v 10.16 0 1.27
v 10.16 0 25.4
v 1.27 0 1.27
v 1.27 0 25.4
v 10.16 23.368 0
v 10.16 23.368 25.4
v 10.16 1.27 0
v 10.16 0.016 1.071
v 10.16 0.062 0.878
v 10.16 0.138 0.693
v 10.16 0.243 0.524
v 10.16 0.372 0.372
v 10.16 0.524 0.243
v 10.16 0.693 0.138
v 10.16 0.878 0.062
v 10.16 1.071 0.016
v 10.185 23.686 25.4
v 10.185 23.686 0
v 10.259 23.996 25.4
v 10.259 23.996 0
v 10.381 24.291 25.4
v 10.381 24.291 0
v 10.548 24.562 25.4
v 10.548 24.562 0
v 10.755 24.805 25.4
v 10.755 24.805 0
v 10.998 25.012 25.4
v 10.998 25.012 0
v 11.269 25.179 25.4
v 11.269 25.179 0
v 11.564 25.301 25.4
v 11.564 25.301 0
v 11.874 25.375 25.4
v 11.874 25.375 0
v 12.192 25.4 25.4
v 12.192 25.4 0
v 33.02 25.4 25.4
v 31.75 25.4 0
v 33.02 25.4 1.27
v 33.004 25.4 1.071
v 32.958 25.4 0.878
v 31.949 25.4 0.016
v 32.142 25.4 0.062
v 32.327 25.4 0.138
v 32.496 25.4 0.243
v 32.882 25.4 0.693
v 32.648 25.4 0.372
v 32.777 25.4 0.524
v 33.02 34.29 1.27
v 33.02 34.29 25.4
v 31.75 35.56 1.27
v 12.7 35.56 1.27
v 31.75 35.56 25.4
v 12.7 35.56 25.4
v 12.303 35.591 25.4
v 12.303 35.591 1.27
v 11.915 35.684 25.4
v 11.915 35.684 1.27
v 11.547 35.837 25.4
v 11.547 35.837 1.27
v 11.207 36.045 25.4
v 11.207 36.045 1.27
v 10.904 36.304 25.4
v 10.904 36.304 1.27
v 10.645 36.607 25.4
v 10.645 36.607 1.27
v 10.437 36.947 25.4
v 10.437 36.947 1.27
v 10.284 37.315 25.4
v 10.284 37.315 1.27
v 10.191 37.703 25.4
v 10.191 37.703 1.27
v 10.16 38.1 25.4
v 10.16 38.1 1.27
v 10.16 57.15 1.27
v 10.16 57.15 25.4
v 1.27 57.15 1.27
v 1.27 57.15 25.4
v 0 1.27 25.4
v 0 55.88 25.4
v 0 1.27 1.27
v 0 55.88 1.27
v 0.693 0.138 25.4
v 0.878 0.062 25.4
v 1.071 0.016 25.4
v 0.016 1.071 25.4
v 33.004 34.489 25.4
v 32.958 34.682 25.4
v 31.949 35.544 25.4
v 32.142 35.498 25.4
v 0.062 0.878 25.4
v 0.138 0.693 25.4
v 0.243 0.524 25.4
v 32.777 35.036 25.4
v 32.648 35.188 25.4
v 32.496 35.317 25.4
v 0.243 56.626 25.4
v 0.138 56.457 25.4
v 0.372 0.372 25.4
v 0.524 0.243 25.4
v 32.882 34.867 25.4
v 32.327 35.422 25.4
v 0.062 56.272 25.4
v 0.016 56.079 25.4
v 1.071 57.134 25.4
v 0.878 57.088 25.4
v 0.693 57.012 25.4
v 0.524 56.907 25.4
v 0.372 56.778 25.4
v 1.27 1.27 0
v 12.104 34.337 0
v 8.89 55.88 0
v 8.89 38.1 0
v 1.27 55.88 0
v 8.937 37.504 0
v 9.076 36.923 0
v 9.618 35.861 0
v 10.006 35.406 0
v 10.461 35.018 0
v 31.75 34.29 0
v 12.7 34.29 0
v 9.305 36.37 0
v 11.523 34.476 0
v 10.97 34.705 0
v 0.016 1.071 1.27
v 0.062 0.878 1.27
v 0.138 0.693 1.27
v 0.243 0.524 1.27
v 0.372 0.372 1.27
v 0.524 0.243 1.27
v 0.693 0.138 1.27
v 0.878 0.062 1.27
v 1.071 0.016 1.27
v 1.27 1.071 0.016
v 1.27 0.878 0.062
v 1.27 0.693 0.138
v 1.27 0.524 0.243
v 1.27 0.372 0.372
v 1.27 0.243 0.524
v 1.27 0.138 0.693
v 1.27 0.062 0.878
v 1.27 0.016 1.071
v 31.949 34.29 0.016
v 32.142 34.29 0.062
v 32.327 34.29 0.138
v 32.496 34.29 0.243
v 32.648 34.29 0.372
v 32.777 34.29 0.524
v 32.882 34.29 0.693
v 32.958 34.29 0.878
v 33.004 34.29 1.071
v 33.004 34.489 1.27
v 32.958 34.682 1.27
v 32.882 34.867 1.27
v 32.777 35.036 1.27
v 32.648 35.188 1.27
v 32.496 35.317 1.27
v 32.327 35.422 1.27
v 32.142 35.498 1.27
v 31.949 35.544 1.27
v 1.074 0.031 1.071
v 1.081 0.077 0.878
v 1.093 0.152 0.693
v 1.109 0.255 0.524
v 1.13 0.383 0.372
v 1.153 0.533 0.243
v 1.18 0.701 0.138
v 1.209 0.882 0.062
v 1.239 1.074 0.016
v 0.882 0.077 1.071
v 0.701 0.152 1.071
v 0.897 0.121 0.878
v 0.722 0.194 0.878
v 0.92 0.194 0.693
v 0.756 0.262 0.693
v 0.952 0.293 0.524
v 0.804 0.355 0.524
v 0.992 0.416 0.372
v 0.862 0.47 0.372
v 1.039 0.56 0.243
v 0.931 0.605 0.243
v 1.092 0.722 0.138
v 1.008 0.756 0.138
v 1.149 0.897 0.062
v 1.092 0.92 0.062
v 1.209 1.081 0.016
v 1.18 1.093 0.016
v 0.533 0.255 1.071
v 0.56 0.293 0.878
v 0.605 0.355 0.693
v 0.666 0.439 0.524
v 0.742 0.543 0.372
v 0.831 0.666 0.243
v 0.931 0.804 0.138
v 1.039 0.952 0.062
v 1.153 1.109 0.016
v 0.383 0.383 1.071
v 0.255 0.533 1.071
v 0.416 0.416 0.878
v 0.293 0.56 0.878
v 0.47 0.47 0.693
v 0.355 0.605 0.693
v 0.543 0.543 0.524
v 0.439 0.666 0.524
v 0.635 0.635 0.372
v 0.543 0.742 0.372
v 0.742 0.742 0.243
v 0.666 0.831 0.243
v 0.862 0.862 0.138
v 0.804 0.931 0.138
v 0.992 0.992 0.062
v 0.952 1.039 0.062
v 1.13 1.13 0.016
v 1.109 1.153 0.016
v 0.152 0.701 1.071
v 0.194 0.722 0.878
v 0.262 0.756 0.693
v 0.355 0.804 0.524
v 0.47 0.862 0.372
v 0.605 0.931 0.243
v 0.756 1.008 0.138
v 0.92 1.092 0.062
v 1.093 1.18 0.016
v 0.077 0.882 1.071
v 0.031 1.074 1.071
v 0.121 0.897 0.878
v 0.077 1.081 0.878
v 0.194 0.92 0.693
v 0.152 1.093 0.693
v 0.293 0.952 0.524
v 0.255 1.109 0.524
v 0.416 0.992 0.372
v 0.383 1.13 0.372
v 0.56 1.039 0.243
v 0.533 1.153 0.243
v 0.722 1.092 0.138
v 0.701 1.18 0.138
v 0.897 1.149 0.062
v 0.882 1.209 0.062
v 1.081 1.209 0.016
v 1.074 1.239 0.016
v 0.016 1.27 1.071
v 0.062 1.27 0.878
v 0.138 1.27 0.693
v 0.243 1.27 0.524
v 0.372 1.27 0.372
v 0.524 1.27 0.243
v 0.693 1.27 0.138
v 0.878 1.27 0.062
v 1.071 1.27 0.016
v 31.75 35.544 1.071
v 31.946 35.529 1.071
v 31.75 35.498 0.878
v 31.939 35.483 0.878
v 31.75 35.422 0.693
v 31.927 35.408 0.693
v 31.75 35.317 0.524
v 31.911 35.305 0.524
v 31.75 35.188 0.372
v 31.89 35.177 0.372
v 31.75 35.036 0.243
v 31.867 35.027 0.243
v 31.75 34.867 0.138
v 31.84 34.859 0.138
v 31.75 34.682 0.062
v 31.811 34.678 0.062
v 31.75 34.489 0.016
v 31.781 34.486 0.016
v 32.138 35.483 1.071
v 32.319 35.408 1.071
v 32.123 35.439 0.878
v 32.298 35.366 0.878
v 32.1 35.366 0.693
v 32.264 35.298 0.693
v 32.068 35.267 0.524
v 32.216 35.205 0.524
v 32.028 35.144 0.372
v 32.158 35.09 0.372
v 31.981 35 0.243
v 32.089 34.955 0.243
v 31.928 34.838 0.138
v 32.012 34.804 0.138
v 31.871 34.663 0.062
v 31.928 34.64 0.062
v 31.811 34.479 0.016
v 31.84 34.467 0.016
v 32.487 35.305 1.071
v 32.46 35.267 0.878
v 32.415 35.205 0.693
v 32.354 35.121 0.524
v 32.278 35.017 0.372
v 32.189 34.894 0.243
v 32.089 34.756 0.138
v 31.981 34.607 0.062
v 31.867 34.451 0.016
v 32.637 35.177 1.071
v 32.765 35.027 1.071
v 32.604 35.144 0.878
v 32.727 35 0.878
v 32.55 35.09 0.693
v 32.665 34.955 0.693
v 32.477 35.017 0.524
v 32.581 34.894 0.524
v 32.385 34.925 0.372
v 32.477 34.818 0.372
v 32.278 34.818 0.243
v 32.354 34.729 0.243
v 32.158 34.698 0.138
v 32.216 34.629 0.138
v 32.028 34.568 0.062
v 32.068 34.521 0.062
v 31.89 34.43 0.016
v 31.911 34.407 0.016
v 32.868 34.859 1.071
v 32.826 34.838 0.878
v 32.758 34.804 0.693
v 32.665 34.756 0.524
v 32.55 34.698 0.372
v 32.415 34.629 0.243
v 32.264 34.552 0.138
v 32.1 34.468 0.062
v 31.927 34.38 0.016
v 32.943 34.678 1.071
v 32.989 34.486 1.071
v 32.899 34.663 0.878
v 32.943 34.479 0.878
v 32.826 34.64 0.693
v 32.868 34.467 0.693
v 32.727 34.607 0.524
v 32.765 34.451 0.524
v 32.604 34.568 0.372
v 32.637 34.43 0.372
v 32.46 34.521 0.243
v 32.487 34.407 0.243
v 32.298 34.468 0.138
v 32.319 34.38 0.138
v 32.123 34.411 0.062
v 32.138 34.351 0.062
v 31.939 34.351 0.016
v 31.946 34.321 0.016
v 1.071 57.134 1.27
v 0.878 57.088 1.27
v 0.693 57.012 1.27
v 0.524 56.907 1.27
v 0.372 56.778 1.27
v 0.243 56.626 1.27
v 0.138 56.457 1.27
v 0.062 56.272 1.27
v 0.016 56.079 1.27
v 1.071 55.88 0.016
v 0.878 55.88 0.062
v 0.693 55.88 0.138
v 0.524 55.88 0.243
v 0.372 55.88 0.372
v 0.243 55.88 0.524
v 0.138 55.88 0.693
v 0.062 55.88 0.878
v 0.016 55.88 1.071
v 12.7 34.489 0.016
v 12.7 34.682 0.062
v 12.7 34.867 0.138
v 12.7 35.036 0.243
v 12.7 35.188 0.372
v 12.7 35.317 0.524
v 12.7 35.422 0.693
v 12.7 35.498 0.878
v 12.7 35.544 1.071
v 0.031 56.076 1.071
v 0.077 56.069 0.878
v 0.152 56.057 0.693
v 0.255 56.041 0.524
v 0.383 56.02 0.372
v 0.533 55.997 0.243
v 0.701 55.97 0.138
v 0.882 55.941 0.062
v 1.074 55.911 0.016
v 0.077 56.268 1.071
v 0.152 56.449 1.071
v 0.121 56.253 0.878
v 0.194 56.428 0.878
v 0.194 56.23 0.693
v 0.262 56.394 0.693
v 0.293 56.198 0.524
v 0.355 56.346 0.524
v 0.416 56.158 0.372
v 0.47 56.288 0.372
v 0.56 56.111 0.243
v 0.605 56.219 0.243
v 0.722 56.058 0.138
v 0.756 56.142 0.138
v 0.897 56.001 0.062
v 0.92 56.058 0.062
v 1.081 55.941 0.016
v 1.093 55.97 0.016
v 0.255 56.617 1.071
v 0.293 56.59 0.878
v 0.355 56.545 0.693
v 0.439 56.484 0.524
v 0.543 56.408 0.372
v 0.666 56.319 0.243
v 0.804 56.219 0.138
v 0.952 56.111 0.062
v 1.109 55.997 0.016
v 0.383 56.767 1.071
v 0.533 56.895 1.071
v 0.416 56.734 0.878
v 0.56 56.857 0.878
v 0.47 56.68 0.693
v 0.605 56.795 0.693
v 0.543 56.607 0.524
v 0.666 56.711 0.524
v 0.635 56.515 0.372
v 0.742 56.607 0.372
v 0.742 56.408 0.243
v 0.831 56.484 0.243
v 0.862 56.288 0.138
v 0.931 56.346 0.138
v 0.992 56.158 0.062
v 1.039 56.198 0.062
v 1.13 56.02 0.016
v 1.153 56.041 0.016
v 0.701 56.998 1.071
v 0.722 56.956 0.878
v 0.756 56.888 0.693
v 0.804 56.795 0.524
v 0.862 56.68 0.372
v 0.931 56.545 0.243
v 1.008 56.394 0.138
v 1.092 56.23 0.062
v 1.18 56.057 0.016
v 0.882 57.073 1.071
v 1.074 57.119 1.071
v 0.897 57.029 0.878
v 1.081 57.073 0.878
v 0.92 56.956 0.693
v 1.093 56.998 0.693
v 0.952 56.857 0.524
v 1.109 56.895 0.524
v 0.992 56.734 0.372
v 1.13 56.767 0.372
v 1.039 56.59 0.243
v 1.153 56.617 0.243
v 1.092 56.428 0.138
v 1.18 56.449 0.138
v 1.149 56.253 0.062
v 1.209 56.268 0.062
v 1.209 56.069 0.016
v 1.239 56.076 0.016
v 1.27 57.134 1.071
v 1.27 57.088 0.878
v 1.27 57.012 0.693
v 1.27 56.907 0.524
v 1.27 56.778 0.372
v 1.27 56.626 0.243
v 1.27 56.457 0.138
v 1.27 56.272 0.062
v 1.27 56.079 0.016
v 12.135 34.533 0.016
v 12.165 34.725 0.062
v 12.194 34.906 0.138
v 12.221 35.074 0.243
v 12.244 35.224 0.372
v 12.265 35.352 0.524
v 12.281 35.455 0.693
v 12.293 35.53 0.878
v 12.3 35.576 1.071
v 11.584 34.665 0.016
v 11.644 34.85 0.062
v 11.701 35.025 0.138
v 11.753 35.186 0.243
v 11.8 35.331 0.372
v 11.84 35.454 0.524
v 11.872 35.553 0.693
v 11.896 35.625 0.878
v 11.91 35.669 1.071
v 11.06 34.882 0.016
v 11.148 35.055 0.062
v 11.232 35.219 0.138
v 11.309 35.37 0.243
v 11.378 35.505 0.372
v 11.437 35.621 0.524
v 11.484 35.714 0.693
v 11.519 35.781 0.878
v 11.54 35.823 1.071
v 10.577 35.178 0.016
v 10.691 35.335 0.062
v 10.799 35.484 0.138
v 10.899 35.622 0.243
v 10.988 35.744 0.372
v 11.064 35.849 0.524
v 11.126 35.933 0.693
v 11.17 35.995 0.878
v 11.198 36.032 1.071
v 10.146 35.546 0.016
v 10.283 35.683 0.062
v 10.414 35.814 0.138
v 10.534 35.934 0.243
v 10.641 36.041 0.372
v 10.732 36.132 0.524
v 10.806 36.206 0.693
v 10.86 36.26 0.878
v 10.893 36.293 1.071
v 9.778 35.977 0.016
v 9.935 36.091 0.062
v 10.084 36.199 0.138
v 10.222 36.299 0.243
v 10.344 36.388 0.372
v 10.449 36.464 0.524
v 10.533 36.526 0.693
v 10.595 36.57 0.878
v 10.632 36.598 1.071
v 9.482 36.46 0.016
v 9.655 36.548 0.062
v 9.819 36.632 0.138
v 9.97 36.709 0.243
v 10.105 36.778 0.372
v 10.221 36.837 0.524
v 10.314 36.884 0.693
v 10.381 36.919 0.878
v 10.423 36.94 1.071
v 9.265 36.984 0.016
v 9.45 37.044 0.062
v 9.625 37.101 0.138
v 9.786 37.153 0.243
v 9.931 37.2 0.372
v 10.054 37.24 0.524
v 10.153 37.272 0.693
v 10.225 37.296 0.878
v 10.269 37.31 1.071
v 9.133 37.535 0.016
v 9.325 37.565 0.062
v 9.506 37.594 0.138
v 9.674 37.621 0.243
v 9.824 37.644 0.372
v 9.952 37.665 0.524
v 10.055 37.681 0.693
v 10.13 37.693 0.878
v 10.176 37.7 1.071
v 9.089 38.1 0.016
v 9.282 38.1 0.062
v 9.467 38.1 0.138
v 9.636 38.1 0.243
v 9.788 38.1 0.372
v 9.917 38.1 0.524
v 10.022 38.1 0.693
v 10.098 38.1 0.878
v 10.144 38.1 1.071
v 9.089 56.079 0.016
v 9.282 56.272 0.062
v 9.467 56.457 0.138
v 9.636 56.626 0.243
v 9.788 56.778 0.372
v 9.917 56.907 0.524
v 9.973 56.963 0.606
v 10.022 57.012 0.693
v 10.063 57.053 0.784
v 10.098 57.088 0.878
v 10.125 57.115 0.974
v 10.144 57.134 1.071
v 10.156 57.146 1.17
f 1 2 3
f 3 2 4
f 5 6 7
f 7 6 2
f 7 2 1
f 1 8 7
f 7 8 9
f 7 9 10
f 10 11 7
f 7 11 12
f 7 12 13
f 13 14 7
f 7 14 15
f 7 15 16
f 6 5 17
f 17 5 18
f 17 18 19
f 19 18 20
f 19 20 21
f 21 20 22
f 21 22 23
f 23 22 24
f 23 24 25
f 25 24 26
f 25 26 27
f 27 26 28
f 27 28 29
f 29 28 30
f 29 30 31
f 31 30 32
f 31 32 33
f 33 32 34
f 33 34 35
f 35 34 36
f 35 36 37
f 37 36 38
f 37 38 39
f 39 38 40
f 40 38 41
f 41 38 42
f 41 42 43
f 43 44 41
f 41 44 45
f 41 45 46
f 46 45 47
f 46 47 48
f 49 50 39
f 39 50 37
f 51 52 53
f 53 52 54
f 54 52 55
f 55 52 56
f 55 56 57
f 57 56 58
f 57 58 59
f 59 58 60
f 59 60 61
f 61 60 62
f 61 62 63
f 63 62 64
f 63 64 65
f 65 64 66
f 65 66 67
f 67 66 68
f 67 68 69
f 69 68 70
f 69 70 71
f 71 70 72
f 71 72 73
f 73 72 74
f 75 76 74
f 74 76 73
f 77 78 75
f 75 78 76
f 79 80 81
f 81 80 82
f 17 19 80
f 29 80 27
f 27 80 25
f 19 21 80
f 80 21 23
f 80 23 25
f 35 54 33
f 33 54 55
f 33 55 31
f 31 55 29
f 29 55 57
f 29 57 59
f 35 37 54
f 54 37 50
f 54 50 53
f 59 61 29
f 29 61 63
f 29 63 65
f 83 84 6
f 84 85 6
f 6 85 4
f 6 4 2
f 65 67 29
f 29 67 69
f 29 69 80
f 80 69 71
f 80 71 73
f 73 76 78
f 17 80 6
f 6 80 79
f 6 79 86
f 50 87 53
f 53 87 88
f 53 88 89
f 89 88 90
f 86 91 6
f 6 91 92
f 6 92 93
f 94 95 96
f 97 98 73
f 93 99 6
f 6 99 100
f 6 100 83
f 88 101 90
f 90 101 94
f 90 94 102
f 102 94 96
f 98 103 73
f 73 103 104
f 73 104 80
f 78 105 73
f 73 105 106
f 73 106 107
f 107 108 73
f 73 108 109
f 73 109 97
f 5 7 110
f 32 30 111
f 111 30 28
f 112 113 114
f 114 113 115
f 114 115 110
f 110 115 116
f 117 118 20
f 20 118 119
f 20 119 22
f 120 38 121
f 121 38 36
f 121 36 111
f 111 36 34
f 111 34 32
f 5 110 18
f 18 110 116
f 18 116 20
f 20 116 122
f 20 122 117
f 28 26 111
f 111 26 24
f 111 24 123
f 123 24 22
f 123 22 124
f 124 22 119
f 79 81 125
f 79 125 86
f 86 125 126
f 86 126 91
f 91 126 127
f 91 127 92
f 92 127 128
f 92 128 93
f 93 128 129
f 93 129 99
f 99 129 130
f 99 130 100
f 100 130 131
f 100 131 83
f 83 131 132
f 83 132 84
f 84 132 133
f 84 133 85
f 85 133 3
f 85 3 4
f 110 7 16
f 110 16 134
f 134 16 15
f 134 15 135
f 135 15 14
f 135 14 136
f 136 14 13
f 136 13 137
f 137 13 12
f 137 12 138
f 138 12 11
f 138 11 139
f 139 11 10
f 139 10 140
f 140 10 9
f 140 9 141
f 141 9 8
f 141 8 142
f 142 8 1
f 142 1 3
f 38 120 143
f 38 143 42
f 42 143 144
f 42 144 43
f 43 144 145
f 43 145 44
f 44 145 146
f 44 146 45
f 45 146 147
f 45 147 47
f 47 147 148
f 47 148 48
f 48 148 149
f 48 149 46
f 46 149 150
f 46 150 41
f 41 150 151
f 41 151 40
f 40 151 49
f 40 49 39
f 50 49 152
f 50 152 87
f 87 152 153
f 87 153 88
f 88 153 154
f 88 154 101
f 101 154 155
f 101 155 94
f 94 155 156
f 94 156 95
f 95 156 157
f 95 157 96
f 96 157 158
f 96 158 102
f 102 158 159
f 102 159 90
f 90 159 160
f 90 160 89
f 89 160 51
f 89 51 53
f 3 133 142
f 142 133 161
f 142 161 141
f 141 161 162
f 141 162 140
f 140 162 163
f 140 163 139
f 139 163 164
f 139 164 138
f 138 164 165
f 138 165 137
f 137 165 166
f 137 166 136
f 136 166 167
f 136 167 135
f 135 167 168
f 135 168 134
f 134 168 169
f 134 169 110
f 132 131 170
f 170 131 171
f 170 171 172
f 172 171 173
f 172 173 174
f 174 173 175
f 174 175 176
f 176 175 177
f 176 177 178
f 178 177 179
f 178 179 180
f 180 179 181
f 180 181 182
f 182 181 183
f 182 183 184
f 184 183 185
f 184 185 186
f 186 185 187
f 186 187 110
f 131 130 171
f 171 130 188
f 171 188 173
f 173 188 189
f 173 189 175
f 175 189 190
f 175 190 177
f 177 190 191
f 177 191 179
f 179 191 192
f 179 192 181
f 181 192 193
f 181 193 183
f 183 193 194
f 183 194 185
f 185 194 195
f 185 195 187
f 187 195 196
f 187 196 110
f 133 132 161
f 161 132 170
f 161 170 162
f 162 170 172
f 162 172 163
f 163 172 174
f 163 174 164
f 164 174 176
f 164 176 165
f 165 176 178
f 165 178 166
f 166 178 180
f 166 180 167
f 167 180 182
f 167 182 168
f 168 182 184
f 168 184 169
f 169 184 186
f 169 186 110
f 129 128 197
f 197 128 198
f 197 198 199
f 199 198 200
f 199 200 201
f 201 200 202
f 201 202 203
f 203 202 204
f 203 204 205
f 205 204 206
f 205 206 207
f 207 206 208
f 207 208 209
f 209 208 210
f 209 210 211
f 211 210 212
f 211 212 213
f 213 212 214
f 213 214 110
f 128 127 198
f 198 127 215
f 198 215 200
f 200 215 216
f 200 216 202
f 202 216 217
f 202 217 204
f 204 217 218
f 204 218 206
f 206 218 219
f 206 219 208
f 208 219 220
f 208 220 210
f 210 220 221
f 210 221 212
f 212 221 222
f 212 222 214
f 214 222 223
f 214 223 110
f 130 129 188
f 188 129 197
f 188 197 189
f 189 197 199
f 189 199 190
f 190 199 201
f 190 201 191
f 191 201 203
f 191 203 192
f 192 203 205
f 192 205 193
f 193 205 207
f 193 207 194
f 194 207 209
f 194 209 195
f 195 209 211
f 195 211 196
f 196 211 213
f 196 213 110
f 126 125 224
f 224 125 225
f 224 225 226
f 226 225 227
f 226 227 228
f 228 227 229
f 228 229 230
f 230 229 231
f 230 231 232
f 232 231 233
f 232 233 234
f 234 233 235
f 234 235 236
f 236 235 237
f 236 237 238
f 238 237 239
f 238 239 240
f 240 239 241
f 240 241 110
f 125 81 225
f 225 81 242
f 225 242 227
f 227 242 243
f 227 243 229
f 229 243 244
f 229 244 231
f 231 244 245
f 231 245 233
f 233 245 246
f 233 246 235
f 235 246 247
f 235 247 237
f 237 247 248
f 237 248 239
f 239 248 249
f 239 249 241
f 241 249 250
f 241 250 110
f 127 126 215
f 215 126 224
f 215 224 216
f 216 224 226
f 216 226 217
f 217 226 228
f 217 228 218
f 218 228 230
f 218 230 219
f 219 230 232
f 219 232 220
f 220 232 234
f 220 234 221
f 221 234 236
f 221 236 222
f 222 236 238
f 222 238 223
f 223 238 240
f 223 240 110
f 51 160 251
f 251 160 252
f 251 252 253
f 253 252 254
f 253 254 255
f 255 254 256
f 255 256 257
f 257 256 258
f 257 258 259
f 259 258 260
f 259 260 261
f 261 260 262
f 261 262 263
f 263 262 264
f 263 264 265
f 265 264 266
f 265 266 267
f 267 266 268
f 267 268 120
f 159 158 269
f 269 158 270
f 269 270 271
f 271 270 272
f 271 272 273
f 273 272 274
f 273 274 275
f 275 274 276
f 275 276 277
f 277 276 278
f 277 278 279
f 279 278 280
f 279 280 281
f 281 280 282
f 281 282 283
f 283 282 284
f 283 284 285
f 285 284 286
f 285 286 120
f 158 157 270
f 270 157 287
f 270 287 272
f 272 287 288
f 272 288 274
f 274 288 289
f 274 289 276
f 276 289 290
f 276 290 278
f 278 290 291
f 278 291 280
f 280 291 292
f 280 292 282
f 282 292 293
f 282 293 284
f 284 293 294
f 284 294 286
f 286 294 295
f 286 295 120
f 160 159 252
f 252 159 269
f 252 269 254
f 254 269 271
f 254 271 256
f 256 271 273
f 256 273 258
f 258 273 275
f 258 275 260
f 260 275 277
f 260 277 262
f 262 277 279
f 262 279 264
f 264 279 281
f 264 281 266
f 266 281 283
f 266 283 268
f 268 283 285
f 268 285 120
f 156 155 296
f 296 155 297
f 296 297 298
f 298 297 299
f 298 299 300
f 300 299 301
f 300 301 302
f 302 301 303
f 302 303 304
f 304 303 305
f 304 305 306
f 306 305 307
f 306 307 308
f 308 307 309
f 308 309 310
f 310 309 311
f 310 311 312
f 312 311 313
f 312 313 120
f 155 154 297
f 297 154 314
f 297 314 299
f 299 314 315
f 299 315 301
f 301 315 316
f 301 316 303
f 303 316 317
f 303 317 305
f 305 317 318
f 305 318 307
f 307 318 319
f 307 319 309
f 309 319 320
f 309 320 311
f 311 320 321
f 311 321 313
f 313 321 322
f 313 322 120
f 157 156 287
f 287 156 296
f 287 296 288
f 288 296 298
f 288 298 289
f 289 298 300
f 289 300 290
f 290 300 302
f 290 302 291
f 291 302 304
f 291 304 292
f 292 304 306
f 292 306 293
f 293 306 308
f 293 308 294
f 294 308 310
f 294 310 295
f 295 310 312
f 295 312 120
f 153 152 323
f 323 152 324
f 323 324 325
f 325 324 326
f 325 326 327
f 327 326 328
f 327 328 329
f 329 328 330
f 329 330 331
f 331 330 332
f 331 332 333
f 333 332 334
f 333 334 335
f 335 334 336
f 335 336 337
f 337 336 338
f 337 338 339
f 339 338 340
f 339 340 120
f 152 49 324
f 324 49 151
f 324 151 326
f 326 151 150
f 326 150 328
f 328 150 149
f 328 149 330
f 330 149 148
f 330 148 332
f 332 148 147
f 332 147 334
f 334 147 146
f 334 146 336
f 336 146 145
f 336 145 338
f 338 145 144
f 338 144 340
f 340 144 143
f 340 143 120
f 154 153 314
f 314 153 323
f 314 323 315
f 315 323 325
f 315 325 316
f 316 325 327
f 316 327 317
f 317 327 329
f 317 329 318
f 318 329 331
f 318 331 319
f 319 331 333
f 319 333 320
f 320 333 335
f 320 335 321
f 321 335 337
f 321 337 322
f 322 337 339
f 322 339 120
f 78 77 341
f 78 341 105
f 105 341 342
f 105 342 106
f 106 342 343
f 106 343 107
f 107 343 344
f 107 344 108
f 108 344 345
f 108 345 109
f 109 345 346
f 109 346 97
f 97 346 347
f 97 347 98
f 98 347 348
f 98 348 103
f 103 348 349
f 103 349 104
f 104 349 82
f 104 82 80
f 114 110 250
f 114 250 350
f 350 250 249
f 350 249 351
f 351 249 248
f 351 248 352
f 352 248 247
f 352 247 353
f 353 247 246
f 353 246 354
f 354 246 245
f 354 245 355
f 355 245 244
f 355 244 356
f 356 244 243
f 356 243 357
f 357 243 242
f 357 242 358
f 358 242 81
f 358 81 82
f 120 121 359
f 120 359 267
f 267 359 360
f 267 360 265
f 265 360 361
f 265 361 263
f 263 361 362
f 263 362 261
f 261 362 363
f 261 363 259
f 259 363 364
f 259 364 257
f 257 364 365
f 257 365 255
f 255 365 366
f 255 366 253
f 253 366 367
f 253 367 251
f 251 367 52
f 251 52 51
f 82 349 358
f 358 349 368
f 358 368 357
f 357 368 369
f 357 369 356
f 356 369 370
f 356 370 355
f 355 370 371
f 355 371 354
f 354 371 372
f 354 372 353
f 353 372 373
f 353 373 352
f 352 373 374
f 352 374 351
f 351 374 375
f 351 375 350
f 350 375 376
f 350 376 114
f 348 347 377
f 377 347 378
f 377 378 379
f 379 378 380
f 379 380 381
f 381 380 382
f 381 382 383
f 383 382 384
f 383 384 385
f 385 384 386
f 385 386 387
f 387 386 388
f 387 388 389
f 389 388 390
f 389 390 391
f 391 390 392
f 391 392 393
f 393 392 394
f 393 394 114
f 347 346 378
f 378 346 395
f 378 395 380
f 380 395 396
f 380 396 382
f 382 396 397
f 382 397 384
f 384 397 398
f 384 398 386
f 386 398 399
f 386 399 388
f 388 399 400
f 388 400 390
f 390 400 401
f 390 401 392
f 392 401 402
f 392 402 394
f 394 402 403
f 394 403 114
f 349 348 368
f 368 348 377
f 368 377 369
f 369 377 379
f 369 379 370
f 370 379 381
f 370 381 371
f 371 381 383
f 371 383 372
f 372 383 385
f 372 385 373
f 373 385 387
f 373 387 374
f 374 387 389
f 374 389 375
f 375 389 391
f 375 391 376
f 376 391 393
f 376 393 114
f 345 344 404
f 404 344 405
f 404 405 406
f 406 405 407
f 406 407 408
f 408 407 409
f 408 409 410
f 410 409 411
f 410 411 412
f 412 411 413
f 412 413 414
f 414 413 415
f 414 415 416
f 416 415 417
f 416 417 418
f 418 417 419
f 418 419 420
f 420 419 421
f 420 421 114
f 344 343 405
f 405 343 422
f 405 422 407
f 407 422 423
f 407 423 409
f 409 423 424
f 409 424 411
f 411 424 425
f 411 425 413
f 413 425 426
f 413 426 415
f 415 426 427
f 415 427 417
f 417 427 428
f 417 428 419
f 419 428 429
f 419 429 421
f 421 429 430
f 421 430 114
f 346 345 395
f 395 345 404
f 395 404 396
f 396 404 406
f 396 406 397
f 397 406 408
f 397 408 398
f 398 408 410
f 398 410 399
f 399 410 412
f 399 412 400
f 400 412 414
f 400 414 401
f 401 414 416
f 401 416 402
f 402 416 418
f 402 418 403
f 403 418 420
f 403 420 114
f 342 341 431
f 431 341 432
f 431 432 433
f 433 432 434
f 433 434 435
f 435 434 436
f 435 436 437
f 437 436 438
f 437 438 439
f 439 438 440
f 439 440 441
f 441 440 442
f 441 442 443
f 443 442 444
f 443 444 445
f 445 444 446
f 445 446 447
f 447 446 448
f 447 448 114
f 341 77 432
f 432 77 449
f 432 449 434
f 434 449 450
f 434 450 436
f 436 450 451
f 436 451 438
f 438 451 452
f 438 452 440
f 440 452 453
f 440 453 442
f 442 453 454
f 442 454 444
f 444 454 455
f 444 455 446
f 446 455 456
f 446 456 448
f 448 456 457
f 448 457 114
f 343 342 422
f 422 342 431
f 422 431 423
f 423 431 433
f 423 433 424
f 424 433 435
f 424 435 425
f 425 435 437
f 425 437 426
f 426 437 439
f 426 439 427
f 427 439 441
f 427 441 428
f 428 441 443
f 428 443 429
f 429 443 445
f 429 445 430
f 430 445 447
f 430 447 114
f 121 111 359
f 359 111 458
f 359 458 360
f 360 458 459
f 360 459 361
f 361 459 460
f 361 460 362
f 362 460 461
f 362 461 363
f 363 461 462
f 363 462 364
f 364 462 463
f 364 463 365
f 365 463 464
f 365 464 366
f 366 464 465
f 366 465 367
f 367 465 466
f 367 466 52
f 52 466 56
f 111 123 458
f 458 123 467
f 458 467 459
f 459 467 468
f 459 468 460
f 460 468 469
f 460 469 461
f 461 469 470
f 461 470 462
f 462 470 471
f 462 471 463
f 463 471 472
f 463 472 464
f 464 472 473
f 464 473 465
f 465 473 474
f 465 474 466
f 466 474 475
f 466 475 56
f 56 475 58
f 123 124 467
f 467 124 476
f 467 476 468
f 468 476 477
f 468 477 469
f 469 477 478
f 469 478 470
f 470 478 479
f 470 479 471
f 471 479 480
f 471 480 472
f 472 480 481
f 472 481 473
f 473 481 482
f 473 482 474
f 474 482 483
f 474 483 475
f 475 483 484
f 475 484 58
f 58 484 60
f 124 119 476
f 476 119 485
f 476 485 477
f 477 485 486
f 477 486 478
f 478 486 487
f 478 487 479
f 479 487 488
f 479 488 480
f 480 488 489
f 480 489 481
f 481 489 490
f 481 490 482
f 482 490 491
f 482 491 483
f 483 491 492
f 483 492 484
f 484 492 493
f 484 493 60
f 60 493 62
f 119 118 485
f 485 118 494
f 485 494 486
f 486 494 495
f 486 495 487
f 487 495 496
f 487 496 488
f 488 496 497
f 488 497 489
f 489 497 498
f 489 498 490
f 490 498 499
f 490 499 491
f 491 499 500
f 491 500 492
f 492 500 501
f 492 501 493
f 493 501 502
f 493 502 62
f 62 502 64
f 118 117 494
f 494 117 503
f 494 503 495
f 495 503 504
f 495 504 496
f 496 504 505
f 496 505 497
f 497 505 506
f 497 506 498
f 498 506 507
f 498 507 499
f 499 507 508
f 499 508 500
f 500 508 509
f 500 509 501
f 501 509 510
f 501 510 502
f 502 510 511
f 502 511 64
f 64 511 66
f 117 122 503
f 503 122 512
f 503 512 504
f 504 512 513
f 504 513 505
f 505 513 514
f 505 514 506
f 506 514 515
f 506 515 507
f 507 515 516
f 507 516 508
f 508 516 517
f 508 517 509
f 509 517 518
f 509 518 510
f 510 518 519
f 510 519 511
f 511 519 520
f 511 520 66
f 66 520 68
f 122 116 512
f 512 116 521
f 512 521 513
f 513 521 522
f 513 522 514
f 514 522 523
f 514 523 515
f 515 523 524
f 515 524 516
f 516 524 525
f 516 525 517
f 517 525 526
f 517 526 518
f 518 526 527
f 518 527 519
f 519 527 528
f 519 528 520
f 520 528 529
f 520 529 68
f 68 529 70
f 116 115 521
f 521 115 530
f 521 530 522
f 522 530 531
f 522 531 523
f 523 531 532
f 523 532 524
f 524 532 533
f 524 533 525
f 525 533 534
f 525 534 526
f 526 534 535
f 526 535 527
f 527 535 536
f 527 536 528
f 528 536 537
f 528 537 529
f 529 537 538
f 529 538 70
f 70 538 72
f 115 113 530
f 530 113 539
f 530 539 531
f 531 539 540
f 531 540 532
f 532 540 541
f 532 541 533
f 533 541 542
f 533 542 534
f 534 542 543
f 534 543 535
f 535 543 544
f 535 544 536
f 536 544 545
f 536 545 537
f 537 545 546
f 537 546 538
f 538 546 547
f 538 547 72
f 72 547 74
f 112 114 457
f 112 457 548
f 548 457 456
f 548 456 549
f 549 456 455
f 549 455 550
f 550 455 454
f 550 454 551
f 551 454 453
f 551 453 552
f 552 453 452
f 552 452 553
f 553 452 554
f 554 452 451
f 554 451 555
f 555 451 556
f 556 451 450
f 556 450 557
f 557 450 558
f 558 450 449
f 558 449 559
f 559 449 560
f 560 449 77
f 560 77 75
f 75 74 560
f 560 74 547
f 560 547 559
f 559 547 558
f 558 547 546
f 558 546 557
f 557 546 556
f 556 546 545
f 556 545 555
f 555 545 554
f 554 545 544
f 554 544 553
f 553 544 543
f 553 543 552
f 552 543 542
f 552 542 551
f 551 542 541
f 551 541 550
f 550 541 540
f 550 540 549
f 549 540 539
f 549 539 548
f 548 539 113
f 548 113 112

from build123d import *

# Parameters (mm, degrees)
BOSS_EXTRUDE1_DEPTH = 25.4
FILLET1_R           = 1.27


with BuildPart() as part:
    # Sketch1 → Boss-Extrude1 (new body)
    with BuildSketch(Plane.XY):
        with BuildLine():
            Line((0, 0), (0, 35.56))
            Line((0, 35.56), (0, 57.15))
            Line((0, 57.15), (10.16, 57.15))
            Line((10.16, 57.15), (10.16, 38.1))
            ThreePointArc((10.16, 38.1), (10.903948776, 36.303948776), (12.7, 35.56))
            Line((12.7, 35.56), (33.02, 35.56))
            Line((33.02, 35.56), (33.02, 25.4))
            Line((33.02, 25.4), (12.192, 25.4))
            ThreePointArc((12.192, 25.4), (10.755159021, 24.804840979), (10.16, 23.368))
            Line((10.16, 23.368), (10.16, 0))
            Line((10.16, 0), (0, 0))
        make_face()
    extrude(amount=BOSS_EXTRUDE1_DEPTH)

    # Fillet1
    fillet1_edges = [part.edges().sort_by_distance(p)[0] for p in [
        (0, 0, 12.7),
        (0, 57.15, 12.7),
        (0, 28.575, 0),
        (5.08, 0, 0),
        (10.16, 47.625, 0),
        (10.903948776, 36.303948776, 0),
        (22.86, 35.56, 0),
        (5.08, 57.15, 0),
        (33.02, 35.56, 12.7),
        (33.02, 30.48, 0),
    ]]
    fillet(fillet1_edges, radius=FILLET1_R)


solid = part.part
